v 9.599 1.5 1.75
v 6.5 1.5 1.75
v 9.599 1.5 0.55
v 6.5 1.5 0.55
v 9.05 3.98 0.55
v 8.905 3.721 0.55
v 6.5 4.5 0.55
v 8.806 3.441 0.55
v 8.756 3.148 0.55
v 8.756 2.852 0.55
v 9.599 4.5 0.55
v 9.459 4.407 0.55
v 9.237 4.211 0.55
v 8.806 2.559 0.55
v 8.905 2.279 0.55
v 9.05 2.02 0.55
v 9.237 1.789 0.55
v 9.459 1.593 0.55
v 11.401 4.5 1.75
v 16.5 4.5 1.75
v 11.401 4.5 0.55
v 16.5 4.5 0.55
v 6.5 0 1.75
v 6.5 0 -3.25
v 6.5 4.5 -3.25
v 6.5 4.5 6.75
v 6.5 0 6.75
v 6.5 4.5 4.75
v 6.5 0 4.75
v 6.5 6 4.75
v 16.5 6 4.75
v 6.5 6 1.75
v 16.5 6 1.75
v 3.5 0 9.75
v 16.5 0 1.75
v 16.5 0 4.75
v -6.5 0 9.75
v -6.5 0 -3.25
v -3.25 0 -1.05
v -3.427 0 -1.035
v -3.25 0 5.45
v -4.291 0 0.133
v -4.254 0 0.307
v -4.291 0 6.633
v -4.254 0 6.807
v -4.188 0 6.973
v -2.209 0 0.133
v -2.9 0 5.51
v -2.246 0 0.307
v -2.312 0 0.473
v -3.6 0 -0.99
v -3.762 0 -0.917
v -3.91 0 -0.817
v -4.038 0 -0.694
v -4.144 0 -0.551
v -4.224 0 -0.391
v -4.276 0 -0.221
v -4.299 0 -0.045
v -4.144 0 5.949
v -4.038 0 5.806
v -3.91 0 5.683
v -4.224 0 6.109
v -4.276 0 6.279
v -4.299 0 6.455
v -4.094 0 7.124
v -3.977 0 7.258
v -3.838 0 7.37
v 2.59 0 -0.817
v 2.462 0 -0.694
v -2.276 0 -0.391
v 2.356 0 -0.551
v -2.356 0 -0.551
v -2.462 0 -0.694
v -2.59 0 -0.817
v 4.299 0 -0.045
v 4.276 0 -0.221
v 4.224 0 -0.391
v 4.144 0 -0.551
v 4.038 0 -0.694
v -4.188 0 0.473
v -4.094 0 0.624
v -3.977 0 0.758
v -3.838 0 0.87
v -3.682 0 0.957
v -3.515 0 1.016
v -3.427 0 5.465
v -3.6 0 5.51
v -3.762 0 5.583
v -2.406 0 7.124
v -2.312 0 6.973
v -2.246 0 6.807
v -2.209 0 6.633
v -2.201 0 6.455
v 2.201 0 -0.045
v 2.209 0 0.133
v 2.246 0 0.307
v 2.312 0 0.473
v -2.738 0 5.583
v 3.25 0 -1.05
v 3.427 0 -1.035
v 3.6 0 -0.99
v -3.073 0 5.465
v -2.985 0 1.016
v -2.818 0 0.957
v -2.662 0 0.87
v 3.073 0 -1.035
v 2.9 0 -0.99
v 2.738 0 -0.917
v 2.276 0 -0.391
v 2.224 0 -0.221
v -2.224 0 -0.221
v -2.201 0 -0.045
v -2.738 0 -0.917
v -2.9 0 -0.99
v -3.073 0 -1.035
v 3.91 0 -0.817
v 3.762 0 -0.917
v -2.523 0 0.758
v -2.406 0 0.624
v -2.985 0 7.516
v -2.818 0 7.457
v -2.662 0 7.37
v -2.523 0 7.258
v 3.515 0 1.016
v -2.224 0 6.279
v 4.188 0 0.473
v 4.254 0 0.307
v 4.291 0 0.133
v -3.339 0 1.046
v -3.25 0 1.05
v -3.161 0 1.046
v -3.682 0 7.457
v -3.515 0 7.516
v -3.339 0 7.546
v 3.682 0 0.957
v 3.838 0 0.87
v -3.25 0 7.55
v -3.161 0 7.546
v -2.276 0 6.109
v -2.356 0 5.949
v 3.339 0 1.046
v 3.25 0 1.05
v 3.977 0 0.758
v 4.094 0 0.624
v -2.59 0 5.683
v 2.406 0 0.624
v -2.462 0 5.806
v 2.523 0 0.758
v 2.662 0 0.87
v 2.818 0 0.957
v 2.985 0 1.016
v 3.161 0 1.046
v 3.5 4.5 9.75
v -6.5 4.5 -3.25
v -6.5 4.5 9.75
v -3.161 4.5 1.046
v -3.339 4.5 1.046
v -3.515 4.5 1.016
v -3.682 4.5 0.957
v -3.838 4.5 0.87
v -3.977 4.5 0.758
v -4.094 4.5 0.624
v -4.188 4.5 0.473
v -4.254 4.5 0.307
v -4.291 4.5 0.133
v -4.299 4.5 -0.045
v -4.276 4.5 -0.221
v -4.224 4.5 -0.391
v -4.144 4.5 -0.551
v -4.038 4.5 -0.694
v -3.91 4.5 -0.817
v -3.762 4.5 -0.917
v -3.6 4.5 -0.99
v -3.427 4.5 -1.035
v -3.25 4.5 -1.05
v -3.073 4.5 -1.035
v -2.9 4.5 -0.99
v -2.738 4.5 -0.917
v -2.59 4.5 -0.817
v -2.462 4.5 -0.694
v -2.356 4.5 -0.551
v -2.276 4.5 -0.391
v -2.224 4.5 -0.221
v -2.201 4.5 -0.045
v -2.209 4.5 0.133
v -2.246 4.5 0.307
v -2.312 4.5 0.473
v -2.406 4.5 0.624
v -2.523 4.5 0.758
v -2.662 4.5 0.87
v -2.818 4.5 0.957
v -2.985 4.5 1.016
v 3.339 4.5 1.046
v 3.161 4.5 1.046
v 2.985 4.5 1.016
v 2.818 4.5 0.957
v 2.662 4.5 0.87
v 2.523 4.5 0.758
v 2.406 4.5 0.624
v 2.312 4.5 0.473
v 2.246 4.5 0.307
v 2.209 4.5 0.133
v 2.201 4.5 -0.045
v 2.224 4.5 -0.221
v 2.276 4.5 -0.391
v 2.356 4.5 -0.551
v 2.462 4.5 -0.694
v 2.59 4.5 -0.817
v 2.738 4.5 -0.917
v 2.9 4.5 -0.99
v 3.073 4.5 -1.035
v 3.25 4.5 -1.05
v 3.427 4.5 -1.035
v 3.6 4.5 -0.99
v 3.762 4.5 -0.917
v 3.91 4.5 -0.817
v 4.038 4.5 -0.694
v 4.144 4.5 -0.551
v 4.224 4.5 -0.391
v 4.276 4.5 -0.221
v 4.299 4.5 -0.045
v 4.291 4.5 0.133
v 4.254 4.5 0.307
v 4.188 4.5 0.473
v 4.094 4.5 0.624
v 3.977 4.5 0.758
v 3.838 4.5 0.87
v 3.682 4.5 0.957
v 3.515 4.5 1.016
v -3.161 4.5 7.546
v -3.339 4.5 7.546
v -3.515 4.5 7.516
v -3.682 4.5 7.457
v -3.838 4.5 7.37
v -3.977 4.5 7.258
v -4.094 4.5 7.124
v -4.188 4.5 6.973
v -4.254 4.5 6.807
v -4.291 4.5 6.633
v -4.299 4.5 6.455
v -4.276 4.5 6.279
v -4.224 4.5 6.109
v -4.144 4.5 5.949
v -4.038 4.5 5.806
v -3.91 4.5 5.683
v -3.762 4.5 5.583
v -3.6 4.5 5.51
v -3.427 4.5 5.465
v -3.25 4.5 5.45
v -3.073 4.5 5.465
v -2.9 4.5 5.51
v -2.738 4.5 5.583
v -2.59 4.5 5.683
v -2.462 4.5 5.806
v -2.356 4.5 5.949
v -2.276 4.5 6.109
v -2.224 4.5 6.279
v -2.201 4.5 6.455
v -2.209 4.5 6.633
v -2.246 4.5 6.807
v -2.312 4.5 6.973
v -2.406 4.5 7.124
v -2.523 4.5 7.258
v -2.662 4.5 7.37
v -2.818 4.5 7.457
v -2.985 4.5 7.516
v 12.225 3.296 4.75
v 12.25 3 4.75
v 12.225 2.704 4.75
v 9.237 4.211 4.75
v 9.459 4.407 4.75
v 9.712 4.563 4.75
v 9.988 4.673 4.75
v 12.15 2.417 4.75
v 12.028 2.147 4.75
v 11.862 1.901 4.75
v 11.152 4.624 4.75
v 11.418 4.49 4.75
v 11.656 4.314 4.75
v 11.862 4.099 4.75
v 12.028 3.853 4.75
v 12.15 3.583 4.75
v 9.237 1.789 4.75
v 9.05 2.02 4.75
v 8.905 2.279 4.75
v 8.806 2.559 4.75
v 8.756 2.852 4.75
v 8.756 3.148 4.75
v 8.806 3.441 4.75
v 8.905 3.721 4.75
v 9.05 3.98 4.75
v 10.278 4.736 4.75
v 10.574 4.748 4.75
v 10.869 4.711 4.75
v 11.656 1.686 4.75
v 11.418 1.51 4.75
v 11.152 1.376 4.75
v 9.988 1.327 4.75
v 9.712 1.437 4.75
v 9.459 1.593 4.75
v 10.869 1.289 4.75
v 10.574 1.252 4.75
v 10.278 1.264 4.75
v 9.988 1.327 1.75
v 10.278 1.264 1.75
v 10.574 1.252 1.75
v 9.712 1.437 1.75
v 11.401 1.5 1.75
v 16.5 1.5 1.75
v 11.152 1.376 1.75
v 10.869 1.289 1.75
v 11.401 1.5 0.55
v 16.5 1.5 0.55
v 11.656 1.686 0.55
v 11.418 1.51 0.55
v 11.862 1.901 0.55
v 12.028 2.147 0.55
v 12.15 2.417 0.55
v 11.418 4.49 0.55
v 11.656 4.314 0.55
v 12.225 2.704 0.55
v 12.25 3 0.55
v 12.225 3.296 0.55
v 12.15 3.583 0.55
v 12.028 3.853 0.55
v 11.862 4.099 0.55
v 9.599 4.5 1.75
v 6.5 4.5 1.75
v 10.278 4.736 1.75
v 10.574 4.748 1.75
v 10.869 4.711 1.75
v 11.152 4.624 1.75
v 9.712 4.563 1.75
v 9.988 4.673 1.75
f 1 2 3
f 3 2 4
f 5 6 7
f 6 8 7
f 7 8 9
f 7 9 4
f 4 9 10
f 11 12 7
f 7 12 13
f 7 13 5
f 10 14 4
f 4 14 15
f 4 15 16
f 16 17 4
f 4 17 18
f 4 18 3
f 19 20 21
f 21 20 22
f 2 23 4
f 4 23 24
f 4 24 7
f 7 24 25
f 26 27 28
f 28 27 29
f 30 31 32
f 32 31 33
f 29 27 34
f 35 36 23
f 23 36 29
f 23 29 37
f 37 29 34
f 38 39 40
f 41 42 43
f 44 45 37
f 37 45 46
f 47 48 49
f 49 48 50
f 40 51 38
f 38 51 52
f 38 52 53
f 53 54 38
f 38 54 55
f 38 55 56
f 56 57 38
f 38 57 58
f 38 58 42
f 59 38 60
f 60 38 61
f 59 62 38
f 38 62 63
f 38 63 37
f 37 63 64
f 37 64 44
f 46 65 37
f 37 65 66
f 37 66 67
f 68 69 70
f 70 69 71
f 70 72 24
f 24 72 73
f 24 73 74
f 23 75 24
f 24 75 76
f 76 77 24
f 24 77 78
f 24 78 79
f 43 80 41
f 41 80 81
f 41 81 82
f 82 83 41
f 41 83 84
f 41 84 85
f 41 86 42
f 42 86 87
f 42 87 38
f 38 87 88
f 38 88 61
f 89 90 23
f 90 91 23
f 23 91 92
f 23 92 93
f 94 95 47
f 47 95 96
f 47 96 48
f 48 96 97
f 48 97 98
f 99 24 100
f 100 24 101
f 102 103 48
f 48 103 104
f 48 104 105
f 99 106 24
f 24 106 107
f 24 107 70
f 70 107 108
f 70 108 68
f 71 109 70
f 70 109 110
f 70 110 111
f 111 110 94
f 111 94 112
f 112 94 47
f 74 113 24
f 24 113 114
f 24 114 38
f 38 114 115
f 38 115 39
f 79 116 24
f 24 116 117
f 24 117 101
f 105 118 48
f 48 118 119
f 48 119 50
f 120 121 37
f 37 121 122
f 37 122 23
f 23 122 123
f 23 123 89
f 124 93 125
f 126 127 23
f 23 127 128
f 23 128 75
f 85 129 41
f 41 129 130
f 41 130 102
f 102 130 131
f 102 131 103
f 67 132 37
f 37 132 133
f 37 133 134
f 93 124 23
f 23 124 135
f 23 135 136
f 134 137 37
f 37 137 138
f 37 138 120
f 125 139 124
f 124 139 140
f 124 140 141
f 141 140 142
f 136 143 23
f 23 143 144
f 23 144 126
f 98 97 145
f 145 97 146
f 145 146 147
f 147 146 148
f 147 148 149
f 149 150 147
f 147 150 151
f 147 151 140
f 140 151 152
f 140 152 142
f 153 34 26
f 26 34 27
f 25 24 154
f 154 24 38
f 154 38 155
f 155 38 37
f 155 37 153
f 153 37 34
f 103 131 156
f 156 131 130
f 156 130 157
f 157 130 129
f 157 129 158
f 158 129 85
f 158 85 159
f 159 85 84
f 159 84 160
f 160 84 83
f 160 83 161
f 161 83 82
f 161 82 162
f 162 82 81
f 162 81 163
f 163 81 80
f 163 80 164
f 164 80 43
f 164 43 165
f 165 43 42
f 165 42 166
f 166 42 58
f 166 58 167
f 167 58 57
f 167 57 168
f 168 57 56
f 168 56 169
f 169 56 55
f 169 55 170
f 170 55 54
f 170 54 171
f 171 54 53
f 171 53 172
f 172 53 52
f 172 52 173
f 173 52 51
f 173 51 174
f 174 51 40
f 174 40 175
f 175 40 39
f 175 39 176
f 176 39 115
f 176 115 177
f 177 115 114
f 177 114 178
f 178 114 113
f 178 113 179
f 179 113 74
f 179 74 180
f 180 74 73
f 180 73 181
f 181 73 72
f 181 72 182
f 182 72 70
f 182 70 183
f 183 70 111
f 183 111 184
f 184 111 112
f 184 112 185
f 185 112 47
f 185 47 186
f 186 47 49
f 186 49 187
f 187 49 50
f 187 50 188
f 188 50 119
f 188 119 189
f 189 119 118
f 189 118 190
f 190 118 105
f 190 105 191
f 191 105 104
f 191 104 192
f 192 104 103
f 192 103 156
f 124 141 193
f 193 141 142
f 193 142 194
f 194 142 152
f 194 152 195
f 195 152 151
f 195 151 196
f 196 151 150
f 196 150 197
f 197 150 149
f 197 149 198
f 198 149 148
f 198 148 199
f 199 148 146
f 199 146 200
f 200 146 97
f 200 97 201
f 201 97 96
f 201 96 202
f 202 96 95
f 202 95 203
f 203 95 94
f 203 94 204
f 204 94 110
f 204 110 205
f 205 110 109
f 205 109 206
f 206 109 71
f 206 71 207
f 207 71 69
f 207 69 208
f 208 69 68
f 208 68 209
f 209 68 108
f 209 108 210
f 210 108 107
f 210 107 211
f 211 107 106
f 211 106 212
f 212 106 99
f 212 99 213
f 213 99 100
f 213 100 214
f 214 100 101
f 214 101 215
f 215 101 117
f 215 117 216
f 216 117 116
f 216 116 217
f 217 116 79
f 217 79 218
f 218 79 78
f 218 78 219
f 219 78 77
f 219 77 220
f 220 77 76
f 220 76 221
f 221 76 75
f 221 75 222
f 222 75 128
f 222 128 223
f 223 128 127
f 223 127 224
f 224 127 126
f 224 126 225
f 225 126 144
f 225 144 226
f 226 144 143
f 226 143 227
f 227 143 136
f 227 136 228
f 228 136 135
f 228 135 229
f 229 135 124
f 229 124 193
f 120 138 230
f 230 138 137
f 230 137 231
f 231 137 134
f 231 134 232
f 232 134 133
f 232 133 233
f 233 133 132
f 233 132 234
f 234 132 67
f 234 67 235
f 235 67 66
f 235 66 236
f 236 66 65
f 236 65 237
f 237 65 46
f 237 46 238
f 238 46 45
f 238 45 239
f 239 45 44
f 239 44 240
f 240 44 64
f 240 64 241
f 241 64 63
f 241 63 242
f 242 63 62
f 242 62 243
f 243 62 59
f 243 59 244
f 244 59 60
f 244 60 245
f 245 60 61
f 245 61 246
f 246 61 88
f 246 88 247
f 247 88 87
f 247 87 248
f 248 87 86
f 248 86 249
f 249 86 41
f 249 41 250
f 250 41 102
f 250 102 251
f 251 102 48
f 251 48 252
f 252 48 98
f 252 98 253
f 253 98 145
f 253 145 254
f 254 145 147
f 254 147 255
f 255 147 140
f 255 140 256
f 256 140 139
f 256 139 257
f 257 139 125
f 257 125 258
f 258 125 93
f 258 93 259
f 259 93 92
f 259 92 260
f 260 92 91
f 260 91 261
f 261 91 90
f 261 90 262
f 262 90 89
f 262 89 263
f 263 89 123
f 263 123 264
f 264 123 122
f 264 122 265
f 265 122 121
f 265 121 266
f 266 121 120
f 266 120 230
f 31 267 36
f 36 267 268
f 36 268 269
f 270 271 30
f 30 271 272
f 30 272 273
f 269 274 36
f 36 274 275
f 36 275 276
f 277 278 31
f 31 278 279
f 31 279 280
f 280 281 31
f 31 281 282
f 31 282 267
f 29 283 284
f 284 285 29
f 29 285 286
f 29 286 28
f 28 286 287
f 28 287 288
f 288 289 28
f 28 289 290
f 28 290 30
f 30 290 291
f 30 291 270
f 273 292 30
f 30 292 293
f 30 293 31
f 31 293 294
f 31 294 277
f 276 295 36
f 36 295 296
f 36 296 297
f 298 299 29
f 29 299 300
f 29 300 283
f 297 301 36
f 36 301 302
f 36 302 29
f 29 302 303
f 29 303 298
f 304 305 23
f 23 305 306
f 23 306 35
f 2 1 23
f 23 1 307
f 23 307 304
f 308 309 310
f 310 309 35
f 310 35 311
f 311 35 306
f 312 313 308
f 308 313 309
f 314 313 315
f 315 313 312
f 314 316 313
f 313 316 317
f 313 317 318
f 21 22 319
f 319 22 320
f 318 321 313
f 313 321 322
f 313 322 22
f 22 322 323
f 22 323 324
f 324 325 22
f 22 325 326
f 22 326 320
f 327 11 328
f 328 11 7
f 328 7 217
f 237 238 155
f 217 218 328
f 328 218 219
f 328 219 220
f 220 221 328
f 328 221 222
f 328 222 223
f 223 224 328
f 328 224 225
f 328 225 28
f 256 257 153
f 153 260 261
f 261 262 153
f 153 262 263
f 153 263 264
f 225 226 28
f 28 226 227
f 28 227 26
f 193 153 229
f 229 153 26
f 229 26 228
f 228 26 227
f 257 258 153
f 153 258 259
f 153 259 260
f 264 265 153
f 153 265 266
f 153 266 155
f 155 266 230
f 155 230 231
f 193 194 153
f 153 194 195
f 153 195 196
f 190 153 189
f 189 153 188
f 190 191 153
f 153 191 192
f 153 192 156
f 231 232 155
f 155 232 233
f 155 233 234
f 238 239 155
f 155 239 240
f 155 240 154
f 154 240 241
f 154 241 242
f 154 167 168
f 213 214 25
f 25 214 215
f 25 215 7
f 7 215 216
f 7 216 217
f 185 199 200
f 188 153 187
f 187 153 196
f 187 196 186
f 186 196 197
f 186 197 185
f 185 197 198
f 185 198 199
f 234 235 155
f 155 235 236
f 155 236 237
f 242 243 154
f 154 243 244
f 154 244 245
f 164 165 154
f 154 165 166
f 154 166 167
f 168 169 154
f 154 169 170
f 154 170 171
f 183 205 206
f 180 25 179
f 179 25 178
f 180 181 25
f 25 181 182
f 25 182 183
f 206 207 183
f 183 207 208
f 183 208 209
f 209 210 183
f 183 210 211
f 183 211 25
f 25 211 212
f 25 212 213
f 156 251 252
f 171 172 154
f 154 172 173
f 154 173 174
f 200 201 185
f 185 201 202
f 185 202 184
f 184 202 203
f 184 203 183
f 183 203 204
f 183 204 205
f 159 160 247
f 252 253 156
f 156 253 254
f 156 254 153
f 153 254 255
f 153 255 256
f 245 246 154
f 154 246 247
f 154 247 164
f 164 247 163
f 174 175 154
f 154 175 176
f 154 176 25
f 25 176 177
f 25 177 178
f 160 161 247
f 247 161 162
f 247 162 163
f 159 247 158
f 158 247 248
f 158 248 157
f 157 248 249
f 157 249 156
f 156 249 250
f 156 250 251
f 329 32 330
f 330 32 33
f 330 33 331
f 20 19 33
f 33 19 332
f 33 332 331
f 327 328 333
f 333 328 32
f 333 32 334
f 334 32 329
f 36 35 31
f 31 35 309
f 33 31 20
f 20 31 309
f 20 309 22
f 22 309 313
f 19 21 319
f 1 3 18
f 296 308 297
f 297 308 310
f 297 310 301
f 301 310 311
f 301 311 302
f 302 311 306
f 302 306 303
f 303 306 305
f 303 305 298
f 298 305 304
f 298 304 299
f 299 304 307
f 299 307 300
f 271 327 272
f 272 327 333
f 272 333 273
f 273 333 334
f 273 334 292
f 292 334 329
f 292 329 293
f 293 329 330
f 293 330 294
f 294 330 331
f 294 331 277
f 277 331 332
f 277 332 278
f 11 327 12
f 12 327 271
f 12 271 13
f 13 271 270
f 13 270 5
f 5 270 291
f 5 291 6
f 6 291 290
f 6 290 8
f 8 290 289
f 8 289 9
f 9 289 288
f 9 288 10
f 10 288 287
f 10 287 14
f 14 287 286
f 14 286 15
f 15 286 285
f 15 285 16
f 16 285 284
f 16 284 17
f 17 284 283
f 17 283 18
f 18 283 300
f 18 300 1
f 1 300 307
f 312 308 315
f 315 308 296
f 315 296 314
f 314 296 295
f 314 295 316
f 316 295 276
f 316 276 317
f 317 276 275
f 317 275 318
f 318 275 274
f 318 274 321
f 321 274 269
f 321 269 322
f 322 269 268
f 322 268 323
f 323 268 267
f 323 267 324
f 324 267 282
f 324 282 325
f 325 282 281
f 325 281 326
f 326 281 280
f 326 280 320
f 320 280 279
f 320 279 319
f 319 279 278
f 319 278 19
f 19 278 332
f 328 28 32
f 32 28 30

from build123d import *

# Parameters (mm, degrees)
SKETCH_2_R          = 1.05
EXTRUDE_1_DEPTH     = 6
EXTRUDE_3_DEPTH     = 10
SKETCH_5_R          = 1.75
CUT_EXTRUDE_1_DEPTH = 20.293781382
SKETCH_6_W          = 13
SKETCH_6_H          = 13
CUT_EXTRUDE_2_DEPTH = 1.5


with BuildPart() as part:
    # 草图2 → 凸台-拉伸1 (new body)
    with BuildSketch(Plane(origin=(0, 0, 0), x_dir=(1, 0, 0), z_dir=(0, 1, 0))):
        Polygon((-6.5, 3.25), (6.5, 3.25), (6.5, -6.75), (3.5, -9.75), (-6.5, -9.75), align=None)
        with Locations(Location((-3.25, 0, 0), (0, 0, 270))):
            Circle(SKETCH_2_R, mode=Mode.SUBTRACT)
        with Locations(Location((3.25, 0, 0), (0, 0, 270))):
            Circle(SKETCH_2_R, mode=Mode.SUBTRACT)
        with Locations(Location((-3.25, -6.5, 0), (0, 0, 270))):
            Circle(SKETCH_2_R, mode=Mode.SUBTRACT)
    extrude(amount=EXTRUDE_1_DEPTH)

    # 草图4 → 凸台-拉伸3 (add)
    with BuildSketch(Plane(origin=(6.5, 0, 11.5), x_dir=(0, 0, -1), z_dir=(1, 0, 0))):
        Polygon((9.75, 6), (9.75, 4.5), (10.95, 4.5), (10.95, 1.5), (9.75, 1.5), (9.75, 0), (6.75, 0), (6.75, 6), align=None)
    extrude(amount=EXTRUDE_3_DEPTH)

    # 草图5 → 切除-拉伸1 (cut, through all)
    with BuildSketch(Plane.XY.offset(4.75)):
        with Locations((10.5, 3)):
            Circle(SKETCH_5_R)
    extrude(amount=-CUT_EXTRUDE_1_DEPTH, mode=Mode.SUBTRACT)

    # 草图6 → 切除-拉伸2 (cut)
    with BuildSketch(Plane(origin=(0, 6, 0), x_dir=(1, 0, 0), z_dir=(0, 1, 0))):
        with Locations((0, -3.25)):
            Rectangle(SKETCH_6_W, SKETCH_6_H)
    extrude(amount=-CUT_EXTRUDE_2_DEPTH, mode=Mode.SUBTRACT)


solid = part.part
